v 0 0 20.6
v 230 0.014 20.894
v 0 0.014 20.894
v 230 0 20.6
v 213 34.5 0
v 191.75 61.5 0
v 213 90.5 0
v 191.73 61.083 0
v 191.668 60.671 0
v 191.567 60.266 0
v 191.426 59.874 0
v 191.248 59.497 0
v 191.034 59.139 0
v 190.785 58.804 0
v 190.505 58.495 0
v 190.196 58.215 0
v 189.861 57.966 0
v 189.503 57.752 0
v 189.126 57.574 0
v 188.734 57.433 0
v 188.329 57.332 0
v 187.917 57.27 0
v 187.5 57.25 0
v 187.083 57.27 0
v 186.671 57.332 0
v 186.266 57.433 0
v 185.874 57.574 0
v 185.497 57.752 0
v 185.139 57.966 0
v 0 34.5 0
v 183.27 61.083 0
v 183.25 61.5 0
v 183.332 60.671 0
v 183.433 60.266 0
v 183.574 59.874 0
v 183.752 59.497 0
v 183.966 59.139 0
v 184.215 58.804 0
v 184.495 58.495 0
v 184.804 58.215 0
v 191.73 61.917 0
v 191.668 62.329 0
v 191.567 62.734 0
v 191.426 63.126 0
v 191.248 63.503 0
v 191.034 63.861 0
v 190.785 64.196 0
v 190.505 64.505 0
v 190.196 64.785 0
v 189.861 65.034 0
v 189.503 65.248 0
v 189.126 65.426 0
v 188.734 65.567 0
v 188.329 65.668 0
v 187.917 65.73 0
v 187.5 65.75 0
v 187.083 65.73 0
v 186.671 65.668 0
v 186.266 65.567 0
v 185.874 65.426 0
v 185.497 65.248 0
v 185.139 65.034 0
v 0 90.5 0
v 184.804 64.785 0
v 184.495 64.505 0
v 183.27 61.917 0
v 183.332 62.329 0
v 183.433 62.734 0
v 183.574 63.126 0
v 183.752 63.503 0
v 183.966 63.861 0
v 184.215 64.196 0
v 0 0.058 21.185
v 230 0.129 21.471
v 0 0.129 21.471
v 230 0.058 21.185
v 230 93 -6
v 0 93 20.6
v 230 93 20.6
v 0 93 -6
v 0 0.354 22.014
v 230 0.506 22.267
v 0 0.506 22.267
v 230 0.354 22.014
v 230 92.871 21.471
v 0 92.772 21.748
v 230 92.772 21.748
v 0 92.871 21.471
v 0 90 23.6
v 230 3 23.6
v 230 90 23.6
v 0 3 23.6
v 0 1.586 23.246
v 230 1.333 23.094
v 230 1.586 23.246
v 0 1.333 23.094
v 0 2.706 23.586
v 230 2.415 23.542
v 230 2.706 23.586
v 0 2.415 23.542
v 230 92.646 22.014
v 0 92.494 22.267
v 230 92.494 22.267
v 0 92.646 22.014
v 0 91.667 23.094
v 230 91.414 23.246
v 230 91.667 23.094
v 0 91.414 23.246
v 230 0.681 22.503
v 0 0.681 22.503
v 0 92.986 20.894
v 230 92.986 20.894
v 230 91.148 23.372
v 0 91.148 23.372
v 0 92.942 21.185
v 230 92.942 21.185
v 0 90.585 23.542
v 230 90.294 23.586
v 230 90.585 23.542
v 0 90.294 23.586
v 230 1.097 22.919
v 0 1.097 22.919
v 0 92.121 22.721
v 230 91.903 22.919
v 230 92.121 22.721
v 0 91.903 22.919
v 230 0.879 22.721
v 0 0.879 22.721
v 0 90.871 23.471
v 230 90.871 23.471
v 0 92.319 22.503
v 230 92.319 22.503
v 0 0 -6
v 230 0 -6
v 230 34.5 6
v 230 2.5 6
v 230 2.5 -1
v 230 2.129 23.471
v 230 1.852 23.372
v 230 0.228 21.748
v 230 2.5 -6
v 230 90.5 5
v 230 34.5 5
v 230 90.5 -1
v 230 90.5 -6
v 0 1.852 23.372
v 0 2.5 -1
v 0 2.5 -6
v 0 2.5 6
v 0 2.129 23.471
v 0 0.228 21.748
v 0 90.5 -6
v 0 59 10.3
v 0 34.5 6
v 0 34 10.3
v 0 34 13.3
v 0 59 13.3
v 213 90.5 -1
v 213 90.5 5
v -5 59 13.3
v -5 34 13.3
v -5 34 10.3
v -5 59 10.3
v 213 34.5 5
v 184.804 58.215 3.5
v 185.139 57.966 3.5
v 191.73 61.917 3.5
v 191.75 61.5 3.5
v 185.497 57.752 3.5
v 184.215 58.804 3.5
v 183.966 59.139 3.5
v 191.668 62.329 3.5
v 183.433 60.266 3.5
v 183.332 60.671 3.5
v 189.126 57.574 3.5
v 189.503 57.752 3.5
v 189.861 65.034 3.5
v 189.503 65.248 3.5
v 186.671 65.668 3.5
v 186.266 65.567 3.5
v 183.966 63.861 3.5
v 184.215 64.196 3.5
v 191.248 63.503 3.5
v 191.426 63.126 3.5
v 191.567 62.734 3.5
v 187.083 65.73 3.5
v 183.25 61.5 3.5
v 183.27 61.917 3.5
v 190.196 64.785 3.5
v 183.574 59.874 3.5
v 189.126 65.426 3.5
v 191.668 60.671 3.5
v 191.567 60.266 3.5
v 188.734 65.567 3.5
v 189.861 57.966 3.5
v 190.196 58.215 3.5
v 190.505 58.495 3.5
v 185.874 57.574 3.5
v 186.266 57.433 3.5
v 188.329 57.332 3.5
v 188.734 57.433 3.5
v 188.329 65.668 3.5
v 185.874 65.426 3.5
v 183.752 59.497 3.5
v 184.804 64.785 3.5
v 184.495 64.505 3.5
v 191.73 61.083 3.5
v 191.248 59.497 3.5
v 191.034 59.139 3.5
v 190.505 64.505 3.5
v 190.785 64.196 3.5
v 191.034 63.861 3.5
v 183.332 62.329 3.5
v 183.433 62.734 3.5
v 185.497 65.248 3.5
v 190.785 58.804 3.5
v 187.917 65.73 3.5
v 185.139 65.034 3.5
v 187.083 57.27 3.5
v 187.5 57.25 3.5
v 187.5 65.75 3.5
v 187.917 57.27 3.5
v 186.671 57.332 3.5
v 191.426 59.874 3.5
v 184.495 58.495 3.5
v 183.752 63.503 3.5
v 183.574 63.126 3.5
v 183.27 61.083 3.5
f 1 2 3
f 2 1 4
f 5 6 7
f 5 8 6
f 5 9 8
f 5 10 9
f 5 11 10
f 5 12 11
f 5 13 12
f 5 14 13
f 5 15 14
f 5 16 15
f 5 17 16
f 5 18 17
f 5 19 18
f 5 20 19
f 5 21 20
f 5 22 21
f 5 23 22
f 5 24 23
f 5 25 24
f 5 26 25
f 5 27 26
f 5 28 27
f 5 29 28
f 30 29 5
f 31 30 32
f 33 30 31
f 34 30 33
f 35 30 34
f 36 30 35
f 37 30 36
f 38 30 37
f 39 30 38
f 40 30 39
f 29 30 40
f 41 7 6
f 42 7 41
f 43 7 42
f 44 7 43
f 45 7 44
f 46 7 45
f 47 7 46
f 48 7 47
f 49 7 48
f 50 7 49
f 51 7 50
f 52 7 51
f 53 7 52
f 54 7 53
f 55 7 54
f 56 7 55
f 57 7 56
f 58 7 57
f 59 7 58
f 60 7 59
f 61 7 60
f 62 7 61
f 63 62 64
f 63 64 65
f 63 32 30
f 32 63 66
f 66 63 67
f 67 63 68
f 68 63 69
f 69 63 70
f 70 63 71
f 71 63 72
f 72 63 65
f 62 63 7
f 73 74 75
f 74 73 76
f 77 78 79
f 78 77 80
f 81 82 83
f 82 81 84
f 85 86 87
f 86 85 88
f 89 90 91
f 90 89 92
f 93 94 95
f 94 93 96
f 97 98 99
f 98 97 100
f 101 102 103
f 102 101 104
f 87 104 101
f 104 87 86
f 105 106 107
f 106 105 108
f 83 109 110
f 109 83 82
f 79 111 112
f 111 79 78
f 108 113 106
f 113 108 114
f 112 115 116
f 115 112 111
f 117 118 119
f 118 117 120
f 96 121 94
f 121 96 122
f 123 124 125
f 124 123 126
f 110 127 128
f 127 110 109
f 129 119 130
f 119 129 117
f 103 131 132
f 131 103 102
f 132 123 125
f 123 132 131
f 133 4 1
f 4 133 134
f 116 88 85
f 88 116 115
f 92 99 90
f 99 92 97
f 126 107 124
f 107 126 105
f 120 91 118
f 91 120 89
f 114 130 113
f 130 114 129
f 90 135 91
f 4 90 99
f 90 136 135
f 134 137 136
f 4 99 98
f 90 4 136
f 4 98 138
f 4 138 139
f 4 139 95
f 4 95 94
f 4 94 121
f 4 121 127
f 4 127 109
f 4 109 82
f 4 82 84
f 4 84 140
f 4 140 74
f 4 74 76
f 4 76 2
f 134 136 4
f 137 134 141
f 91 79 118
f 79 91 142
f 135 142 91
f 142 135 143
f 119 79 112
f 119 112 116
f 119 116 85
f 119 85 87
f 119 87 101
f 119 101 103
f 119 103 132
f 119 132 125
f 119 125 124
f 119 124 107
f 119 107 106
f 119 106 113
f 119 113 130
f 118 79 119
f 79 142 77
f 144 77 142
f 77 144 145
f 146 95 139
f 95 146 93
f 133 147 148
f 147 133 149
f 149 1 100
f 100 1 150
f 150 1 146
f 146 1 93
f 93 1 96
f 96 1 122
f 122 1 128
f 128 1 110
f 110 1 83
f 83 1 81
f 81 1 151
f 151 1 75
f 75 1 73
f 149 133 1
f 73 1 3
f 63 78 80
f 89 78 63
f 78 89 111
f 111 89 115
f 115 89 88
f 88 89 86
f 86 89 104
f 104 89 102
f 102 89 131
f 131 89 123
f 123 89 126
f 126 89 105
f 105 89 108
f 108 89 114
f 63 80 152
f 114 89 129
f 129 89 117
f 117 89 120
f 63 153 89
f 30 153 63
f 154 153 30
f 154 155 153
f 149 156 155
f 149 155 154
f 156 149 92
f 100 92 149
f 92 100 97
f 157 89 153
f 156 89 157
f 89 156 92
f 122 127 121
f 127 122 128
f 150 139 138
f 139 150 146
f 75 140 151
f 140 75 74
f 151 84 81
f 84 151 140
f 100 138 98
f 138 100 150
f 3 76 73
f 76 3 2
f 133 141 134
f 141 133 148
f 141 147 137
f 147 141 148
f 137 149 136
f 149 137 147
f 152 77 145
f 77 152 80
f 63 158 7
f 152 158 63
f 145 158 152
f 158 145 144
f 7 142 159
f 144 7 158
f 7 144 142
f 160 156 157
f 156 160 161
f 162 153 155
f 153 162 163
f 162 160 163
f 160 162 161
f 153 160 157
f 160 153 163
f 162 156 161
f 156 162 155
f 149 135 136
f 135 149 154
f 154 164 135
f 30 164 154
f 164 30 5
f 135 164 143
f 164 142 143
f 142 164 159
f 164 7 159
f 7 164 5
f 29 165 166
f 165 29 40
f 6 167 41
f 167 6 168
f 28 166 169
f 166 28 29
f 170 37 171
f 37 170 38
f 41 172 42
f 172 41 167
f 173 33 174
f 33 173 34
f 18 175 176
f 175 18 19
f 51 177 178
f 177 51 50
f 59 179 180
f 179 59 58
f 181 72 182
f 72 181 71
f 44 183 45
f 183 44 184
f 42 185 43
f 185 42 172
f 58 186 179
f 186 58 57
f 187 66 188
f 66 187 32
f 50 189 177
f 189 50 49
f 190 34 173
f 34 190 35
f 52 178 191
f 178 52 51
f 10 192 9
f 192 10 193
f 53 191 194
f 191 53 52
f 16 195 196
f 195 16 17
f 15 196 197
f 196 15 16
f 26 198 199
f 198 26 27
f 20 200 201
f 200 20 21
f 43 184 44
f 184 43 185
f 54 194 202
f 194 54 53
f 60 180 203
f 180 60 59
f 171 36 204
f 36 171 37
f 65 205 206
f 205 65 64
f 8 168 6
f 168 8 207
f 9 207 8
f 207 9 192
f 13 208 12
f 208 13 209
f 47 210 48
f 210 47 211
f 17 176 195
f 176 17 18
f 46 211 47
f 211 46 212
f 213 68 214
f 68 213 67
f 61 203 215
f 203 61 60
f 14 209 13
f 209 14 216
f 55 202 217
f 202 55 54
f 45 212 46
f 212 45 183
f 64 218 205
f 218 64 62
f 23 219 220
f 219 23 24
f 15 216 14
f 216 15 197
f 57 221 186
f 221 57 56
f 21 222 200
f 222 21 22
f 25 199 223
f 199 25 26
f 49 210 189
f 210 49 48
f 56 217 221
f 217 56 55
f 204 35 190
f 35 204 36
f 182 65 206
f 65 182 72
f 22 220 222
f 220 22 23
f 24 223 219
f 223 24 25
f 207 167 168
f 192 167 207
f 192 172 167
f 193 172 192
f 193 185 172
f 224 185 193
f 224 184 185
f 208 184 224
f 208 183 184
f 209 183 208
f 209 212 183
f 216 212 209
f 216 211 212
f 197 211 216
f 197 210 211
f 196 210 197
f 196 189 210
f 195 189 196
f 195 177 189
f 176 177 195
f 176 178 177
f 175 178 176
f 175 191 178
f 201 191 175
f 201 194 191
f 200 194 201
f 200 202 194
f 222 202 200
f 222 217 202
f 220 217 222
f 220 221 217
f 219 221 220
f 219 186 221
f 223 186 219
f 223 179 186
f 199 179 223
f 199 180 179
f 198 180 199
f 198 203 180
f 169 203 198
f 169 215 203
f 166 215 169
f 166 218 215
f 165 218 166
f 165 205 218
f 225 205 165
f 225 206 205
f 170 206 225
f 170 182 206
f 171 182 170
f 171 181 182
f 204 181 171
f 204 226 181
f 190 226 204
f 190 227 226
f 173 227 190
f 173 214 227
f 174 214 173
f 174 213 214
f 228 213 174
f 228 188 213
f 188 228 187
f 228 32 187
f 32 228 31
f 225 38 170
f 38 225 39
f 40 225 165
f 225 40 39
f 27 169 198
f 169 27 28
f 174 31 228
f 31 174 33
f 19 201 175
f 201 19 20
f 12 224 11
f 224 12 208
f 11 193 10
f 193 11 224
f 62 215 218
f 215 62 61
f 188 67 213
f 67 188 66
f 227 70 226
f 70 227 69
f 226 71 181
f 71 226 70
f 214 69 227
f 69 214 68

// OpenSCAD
// Abdeckung R730 — Segment 1 (Bezel) v4
// Basis: Segment 2 v3 — identisches Sattel-Profil
// Änderungen gegenüber Seg2:
//   - Nut X=0 → Feder (ragt in -X Richtung)
//   - Feder X=230 → Bezel-Ausschnitt (freies Ende)
// ——————————————————————————————————————————

$fn = 64;

laenge  = 230;
breite  = 93;
hoehe   = 23.6;
r       = 3;

// Absatz (Rack-Ear)
absatz_y = 31;
absatz_z = 6;

// Gegenrand
rand_staerke = 2.5;
rand_tiefe   = 6;

// Feder
nf_breite  = 25;
nf_hoehe   = 3;
nf_tiefe   = 5;
nf_y       = (breite - nf_breite) / 2;
nf_z       = (hoehe  - nf_hoehe)  / 2;

// Bezel-Halter-Fuß
bezel_tiefe = 17;
bezel_hoehe = 5;

module grundkoerper() {
    hull() {
        cube([laenge, breite, 0.01]);

        translate([0, r, hoehe - r])
            rotate([0, 90, 0])
            cylinder(r=r, h=laenge);

        translate([0, breite - r, hoehe - r])
            rotate([0, 90, 0])
            cylinder(r=r, h=laenge);
    }
}

difference() {
    union() {
        grundkoerper();

        // ——— Gegenrand Y=0-Seite ———
        translate([0, 0, -rand_tiefe])
            cube([laenge, rand_staerke, rand_tiefe + 0.01]);

        // ——— Gegenrand Y=breite-Seite ———
        translate([0, breite - rand_staerke, -rand_tiefe])
            cube([laenge, rand_staerke, rand_tiefe + 0.01]);

        // ——— Feder vorne (X=0) → ragt in -X Richtung ———
        translate([-nf_tiefe, nf_y, nf_z])
            cube([nf_tiefe, nf_breite, nf_hoehe]);
    }

    // ——— Absatz: Rack-Ear ———
    // Z=-1 sicher → Y=2.5..33.5 überlappt NICHT mit hängenden Wänden (Y=0..2.5, Y=90.5..93)
    // entfernt Bodenfläche vollständig → keine Zwischenwand
    translate([-1, rand_staerke, -1])
        cube([laenge+2, absatz_y+1, absatz_z+1]);

    // ——— Bezel-Ausschnitt hinten (X=230) ———
    // Y nur zwischen hängenden Wänden → Wände bleiben durchgehend
    // Z=-1 → entfernt Bodenfläche vollständig (Y-Bereich schützt hängende Wände)
    translate([laenge-bezel_tiefe, rand_staerke, -1])
        cube([bezel_tiefe+1, breite-2*rand_staerke, bezel_hoehe+1]);

    // ——— Shoulder Screw Vertiefung Knopf 1 ———
    // 4.25cm (42.5mm) ab Vorderkante (X=230-42.5=187.5)
    // 29mm von Innenkante = 31.5mm von Außenkante (Y=61.5mm)
    // ⌀8.5mm, 3.5mm tief
    translate([187.5, 93-31.5, -1])
        cylinder(r=4.25, h=3.5+1);

    // Knopf 2: liegt bei 244.5mm ab Vorderkante → X=-14.5mm → gehört in Seg2!
}

echo("Segment 1 — Bezel v4");
echo("Außenbreite:", breite, "mm — Innenmaß: 88mm");
echo("Feder bei X=0 ragt in -X, Bezel-Ausschnitt bei X=230");
